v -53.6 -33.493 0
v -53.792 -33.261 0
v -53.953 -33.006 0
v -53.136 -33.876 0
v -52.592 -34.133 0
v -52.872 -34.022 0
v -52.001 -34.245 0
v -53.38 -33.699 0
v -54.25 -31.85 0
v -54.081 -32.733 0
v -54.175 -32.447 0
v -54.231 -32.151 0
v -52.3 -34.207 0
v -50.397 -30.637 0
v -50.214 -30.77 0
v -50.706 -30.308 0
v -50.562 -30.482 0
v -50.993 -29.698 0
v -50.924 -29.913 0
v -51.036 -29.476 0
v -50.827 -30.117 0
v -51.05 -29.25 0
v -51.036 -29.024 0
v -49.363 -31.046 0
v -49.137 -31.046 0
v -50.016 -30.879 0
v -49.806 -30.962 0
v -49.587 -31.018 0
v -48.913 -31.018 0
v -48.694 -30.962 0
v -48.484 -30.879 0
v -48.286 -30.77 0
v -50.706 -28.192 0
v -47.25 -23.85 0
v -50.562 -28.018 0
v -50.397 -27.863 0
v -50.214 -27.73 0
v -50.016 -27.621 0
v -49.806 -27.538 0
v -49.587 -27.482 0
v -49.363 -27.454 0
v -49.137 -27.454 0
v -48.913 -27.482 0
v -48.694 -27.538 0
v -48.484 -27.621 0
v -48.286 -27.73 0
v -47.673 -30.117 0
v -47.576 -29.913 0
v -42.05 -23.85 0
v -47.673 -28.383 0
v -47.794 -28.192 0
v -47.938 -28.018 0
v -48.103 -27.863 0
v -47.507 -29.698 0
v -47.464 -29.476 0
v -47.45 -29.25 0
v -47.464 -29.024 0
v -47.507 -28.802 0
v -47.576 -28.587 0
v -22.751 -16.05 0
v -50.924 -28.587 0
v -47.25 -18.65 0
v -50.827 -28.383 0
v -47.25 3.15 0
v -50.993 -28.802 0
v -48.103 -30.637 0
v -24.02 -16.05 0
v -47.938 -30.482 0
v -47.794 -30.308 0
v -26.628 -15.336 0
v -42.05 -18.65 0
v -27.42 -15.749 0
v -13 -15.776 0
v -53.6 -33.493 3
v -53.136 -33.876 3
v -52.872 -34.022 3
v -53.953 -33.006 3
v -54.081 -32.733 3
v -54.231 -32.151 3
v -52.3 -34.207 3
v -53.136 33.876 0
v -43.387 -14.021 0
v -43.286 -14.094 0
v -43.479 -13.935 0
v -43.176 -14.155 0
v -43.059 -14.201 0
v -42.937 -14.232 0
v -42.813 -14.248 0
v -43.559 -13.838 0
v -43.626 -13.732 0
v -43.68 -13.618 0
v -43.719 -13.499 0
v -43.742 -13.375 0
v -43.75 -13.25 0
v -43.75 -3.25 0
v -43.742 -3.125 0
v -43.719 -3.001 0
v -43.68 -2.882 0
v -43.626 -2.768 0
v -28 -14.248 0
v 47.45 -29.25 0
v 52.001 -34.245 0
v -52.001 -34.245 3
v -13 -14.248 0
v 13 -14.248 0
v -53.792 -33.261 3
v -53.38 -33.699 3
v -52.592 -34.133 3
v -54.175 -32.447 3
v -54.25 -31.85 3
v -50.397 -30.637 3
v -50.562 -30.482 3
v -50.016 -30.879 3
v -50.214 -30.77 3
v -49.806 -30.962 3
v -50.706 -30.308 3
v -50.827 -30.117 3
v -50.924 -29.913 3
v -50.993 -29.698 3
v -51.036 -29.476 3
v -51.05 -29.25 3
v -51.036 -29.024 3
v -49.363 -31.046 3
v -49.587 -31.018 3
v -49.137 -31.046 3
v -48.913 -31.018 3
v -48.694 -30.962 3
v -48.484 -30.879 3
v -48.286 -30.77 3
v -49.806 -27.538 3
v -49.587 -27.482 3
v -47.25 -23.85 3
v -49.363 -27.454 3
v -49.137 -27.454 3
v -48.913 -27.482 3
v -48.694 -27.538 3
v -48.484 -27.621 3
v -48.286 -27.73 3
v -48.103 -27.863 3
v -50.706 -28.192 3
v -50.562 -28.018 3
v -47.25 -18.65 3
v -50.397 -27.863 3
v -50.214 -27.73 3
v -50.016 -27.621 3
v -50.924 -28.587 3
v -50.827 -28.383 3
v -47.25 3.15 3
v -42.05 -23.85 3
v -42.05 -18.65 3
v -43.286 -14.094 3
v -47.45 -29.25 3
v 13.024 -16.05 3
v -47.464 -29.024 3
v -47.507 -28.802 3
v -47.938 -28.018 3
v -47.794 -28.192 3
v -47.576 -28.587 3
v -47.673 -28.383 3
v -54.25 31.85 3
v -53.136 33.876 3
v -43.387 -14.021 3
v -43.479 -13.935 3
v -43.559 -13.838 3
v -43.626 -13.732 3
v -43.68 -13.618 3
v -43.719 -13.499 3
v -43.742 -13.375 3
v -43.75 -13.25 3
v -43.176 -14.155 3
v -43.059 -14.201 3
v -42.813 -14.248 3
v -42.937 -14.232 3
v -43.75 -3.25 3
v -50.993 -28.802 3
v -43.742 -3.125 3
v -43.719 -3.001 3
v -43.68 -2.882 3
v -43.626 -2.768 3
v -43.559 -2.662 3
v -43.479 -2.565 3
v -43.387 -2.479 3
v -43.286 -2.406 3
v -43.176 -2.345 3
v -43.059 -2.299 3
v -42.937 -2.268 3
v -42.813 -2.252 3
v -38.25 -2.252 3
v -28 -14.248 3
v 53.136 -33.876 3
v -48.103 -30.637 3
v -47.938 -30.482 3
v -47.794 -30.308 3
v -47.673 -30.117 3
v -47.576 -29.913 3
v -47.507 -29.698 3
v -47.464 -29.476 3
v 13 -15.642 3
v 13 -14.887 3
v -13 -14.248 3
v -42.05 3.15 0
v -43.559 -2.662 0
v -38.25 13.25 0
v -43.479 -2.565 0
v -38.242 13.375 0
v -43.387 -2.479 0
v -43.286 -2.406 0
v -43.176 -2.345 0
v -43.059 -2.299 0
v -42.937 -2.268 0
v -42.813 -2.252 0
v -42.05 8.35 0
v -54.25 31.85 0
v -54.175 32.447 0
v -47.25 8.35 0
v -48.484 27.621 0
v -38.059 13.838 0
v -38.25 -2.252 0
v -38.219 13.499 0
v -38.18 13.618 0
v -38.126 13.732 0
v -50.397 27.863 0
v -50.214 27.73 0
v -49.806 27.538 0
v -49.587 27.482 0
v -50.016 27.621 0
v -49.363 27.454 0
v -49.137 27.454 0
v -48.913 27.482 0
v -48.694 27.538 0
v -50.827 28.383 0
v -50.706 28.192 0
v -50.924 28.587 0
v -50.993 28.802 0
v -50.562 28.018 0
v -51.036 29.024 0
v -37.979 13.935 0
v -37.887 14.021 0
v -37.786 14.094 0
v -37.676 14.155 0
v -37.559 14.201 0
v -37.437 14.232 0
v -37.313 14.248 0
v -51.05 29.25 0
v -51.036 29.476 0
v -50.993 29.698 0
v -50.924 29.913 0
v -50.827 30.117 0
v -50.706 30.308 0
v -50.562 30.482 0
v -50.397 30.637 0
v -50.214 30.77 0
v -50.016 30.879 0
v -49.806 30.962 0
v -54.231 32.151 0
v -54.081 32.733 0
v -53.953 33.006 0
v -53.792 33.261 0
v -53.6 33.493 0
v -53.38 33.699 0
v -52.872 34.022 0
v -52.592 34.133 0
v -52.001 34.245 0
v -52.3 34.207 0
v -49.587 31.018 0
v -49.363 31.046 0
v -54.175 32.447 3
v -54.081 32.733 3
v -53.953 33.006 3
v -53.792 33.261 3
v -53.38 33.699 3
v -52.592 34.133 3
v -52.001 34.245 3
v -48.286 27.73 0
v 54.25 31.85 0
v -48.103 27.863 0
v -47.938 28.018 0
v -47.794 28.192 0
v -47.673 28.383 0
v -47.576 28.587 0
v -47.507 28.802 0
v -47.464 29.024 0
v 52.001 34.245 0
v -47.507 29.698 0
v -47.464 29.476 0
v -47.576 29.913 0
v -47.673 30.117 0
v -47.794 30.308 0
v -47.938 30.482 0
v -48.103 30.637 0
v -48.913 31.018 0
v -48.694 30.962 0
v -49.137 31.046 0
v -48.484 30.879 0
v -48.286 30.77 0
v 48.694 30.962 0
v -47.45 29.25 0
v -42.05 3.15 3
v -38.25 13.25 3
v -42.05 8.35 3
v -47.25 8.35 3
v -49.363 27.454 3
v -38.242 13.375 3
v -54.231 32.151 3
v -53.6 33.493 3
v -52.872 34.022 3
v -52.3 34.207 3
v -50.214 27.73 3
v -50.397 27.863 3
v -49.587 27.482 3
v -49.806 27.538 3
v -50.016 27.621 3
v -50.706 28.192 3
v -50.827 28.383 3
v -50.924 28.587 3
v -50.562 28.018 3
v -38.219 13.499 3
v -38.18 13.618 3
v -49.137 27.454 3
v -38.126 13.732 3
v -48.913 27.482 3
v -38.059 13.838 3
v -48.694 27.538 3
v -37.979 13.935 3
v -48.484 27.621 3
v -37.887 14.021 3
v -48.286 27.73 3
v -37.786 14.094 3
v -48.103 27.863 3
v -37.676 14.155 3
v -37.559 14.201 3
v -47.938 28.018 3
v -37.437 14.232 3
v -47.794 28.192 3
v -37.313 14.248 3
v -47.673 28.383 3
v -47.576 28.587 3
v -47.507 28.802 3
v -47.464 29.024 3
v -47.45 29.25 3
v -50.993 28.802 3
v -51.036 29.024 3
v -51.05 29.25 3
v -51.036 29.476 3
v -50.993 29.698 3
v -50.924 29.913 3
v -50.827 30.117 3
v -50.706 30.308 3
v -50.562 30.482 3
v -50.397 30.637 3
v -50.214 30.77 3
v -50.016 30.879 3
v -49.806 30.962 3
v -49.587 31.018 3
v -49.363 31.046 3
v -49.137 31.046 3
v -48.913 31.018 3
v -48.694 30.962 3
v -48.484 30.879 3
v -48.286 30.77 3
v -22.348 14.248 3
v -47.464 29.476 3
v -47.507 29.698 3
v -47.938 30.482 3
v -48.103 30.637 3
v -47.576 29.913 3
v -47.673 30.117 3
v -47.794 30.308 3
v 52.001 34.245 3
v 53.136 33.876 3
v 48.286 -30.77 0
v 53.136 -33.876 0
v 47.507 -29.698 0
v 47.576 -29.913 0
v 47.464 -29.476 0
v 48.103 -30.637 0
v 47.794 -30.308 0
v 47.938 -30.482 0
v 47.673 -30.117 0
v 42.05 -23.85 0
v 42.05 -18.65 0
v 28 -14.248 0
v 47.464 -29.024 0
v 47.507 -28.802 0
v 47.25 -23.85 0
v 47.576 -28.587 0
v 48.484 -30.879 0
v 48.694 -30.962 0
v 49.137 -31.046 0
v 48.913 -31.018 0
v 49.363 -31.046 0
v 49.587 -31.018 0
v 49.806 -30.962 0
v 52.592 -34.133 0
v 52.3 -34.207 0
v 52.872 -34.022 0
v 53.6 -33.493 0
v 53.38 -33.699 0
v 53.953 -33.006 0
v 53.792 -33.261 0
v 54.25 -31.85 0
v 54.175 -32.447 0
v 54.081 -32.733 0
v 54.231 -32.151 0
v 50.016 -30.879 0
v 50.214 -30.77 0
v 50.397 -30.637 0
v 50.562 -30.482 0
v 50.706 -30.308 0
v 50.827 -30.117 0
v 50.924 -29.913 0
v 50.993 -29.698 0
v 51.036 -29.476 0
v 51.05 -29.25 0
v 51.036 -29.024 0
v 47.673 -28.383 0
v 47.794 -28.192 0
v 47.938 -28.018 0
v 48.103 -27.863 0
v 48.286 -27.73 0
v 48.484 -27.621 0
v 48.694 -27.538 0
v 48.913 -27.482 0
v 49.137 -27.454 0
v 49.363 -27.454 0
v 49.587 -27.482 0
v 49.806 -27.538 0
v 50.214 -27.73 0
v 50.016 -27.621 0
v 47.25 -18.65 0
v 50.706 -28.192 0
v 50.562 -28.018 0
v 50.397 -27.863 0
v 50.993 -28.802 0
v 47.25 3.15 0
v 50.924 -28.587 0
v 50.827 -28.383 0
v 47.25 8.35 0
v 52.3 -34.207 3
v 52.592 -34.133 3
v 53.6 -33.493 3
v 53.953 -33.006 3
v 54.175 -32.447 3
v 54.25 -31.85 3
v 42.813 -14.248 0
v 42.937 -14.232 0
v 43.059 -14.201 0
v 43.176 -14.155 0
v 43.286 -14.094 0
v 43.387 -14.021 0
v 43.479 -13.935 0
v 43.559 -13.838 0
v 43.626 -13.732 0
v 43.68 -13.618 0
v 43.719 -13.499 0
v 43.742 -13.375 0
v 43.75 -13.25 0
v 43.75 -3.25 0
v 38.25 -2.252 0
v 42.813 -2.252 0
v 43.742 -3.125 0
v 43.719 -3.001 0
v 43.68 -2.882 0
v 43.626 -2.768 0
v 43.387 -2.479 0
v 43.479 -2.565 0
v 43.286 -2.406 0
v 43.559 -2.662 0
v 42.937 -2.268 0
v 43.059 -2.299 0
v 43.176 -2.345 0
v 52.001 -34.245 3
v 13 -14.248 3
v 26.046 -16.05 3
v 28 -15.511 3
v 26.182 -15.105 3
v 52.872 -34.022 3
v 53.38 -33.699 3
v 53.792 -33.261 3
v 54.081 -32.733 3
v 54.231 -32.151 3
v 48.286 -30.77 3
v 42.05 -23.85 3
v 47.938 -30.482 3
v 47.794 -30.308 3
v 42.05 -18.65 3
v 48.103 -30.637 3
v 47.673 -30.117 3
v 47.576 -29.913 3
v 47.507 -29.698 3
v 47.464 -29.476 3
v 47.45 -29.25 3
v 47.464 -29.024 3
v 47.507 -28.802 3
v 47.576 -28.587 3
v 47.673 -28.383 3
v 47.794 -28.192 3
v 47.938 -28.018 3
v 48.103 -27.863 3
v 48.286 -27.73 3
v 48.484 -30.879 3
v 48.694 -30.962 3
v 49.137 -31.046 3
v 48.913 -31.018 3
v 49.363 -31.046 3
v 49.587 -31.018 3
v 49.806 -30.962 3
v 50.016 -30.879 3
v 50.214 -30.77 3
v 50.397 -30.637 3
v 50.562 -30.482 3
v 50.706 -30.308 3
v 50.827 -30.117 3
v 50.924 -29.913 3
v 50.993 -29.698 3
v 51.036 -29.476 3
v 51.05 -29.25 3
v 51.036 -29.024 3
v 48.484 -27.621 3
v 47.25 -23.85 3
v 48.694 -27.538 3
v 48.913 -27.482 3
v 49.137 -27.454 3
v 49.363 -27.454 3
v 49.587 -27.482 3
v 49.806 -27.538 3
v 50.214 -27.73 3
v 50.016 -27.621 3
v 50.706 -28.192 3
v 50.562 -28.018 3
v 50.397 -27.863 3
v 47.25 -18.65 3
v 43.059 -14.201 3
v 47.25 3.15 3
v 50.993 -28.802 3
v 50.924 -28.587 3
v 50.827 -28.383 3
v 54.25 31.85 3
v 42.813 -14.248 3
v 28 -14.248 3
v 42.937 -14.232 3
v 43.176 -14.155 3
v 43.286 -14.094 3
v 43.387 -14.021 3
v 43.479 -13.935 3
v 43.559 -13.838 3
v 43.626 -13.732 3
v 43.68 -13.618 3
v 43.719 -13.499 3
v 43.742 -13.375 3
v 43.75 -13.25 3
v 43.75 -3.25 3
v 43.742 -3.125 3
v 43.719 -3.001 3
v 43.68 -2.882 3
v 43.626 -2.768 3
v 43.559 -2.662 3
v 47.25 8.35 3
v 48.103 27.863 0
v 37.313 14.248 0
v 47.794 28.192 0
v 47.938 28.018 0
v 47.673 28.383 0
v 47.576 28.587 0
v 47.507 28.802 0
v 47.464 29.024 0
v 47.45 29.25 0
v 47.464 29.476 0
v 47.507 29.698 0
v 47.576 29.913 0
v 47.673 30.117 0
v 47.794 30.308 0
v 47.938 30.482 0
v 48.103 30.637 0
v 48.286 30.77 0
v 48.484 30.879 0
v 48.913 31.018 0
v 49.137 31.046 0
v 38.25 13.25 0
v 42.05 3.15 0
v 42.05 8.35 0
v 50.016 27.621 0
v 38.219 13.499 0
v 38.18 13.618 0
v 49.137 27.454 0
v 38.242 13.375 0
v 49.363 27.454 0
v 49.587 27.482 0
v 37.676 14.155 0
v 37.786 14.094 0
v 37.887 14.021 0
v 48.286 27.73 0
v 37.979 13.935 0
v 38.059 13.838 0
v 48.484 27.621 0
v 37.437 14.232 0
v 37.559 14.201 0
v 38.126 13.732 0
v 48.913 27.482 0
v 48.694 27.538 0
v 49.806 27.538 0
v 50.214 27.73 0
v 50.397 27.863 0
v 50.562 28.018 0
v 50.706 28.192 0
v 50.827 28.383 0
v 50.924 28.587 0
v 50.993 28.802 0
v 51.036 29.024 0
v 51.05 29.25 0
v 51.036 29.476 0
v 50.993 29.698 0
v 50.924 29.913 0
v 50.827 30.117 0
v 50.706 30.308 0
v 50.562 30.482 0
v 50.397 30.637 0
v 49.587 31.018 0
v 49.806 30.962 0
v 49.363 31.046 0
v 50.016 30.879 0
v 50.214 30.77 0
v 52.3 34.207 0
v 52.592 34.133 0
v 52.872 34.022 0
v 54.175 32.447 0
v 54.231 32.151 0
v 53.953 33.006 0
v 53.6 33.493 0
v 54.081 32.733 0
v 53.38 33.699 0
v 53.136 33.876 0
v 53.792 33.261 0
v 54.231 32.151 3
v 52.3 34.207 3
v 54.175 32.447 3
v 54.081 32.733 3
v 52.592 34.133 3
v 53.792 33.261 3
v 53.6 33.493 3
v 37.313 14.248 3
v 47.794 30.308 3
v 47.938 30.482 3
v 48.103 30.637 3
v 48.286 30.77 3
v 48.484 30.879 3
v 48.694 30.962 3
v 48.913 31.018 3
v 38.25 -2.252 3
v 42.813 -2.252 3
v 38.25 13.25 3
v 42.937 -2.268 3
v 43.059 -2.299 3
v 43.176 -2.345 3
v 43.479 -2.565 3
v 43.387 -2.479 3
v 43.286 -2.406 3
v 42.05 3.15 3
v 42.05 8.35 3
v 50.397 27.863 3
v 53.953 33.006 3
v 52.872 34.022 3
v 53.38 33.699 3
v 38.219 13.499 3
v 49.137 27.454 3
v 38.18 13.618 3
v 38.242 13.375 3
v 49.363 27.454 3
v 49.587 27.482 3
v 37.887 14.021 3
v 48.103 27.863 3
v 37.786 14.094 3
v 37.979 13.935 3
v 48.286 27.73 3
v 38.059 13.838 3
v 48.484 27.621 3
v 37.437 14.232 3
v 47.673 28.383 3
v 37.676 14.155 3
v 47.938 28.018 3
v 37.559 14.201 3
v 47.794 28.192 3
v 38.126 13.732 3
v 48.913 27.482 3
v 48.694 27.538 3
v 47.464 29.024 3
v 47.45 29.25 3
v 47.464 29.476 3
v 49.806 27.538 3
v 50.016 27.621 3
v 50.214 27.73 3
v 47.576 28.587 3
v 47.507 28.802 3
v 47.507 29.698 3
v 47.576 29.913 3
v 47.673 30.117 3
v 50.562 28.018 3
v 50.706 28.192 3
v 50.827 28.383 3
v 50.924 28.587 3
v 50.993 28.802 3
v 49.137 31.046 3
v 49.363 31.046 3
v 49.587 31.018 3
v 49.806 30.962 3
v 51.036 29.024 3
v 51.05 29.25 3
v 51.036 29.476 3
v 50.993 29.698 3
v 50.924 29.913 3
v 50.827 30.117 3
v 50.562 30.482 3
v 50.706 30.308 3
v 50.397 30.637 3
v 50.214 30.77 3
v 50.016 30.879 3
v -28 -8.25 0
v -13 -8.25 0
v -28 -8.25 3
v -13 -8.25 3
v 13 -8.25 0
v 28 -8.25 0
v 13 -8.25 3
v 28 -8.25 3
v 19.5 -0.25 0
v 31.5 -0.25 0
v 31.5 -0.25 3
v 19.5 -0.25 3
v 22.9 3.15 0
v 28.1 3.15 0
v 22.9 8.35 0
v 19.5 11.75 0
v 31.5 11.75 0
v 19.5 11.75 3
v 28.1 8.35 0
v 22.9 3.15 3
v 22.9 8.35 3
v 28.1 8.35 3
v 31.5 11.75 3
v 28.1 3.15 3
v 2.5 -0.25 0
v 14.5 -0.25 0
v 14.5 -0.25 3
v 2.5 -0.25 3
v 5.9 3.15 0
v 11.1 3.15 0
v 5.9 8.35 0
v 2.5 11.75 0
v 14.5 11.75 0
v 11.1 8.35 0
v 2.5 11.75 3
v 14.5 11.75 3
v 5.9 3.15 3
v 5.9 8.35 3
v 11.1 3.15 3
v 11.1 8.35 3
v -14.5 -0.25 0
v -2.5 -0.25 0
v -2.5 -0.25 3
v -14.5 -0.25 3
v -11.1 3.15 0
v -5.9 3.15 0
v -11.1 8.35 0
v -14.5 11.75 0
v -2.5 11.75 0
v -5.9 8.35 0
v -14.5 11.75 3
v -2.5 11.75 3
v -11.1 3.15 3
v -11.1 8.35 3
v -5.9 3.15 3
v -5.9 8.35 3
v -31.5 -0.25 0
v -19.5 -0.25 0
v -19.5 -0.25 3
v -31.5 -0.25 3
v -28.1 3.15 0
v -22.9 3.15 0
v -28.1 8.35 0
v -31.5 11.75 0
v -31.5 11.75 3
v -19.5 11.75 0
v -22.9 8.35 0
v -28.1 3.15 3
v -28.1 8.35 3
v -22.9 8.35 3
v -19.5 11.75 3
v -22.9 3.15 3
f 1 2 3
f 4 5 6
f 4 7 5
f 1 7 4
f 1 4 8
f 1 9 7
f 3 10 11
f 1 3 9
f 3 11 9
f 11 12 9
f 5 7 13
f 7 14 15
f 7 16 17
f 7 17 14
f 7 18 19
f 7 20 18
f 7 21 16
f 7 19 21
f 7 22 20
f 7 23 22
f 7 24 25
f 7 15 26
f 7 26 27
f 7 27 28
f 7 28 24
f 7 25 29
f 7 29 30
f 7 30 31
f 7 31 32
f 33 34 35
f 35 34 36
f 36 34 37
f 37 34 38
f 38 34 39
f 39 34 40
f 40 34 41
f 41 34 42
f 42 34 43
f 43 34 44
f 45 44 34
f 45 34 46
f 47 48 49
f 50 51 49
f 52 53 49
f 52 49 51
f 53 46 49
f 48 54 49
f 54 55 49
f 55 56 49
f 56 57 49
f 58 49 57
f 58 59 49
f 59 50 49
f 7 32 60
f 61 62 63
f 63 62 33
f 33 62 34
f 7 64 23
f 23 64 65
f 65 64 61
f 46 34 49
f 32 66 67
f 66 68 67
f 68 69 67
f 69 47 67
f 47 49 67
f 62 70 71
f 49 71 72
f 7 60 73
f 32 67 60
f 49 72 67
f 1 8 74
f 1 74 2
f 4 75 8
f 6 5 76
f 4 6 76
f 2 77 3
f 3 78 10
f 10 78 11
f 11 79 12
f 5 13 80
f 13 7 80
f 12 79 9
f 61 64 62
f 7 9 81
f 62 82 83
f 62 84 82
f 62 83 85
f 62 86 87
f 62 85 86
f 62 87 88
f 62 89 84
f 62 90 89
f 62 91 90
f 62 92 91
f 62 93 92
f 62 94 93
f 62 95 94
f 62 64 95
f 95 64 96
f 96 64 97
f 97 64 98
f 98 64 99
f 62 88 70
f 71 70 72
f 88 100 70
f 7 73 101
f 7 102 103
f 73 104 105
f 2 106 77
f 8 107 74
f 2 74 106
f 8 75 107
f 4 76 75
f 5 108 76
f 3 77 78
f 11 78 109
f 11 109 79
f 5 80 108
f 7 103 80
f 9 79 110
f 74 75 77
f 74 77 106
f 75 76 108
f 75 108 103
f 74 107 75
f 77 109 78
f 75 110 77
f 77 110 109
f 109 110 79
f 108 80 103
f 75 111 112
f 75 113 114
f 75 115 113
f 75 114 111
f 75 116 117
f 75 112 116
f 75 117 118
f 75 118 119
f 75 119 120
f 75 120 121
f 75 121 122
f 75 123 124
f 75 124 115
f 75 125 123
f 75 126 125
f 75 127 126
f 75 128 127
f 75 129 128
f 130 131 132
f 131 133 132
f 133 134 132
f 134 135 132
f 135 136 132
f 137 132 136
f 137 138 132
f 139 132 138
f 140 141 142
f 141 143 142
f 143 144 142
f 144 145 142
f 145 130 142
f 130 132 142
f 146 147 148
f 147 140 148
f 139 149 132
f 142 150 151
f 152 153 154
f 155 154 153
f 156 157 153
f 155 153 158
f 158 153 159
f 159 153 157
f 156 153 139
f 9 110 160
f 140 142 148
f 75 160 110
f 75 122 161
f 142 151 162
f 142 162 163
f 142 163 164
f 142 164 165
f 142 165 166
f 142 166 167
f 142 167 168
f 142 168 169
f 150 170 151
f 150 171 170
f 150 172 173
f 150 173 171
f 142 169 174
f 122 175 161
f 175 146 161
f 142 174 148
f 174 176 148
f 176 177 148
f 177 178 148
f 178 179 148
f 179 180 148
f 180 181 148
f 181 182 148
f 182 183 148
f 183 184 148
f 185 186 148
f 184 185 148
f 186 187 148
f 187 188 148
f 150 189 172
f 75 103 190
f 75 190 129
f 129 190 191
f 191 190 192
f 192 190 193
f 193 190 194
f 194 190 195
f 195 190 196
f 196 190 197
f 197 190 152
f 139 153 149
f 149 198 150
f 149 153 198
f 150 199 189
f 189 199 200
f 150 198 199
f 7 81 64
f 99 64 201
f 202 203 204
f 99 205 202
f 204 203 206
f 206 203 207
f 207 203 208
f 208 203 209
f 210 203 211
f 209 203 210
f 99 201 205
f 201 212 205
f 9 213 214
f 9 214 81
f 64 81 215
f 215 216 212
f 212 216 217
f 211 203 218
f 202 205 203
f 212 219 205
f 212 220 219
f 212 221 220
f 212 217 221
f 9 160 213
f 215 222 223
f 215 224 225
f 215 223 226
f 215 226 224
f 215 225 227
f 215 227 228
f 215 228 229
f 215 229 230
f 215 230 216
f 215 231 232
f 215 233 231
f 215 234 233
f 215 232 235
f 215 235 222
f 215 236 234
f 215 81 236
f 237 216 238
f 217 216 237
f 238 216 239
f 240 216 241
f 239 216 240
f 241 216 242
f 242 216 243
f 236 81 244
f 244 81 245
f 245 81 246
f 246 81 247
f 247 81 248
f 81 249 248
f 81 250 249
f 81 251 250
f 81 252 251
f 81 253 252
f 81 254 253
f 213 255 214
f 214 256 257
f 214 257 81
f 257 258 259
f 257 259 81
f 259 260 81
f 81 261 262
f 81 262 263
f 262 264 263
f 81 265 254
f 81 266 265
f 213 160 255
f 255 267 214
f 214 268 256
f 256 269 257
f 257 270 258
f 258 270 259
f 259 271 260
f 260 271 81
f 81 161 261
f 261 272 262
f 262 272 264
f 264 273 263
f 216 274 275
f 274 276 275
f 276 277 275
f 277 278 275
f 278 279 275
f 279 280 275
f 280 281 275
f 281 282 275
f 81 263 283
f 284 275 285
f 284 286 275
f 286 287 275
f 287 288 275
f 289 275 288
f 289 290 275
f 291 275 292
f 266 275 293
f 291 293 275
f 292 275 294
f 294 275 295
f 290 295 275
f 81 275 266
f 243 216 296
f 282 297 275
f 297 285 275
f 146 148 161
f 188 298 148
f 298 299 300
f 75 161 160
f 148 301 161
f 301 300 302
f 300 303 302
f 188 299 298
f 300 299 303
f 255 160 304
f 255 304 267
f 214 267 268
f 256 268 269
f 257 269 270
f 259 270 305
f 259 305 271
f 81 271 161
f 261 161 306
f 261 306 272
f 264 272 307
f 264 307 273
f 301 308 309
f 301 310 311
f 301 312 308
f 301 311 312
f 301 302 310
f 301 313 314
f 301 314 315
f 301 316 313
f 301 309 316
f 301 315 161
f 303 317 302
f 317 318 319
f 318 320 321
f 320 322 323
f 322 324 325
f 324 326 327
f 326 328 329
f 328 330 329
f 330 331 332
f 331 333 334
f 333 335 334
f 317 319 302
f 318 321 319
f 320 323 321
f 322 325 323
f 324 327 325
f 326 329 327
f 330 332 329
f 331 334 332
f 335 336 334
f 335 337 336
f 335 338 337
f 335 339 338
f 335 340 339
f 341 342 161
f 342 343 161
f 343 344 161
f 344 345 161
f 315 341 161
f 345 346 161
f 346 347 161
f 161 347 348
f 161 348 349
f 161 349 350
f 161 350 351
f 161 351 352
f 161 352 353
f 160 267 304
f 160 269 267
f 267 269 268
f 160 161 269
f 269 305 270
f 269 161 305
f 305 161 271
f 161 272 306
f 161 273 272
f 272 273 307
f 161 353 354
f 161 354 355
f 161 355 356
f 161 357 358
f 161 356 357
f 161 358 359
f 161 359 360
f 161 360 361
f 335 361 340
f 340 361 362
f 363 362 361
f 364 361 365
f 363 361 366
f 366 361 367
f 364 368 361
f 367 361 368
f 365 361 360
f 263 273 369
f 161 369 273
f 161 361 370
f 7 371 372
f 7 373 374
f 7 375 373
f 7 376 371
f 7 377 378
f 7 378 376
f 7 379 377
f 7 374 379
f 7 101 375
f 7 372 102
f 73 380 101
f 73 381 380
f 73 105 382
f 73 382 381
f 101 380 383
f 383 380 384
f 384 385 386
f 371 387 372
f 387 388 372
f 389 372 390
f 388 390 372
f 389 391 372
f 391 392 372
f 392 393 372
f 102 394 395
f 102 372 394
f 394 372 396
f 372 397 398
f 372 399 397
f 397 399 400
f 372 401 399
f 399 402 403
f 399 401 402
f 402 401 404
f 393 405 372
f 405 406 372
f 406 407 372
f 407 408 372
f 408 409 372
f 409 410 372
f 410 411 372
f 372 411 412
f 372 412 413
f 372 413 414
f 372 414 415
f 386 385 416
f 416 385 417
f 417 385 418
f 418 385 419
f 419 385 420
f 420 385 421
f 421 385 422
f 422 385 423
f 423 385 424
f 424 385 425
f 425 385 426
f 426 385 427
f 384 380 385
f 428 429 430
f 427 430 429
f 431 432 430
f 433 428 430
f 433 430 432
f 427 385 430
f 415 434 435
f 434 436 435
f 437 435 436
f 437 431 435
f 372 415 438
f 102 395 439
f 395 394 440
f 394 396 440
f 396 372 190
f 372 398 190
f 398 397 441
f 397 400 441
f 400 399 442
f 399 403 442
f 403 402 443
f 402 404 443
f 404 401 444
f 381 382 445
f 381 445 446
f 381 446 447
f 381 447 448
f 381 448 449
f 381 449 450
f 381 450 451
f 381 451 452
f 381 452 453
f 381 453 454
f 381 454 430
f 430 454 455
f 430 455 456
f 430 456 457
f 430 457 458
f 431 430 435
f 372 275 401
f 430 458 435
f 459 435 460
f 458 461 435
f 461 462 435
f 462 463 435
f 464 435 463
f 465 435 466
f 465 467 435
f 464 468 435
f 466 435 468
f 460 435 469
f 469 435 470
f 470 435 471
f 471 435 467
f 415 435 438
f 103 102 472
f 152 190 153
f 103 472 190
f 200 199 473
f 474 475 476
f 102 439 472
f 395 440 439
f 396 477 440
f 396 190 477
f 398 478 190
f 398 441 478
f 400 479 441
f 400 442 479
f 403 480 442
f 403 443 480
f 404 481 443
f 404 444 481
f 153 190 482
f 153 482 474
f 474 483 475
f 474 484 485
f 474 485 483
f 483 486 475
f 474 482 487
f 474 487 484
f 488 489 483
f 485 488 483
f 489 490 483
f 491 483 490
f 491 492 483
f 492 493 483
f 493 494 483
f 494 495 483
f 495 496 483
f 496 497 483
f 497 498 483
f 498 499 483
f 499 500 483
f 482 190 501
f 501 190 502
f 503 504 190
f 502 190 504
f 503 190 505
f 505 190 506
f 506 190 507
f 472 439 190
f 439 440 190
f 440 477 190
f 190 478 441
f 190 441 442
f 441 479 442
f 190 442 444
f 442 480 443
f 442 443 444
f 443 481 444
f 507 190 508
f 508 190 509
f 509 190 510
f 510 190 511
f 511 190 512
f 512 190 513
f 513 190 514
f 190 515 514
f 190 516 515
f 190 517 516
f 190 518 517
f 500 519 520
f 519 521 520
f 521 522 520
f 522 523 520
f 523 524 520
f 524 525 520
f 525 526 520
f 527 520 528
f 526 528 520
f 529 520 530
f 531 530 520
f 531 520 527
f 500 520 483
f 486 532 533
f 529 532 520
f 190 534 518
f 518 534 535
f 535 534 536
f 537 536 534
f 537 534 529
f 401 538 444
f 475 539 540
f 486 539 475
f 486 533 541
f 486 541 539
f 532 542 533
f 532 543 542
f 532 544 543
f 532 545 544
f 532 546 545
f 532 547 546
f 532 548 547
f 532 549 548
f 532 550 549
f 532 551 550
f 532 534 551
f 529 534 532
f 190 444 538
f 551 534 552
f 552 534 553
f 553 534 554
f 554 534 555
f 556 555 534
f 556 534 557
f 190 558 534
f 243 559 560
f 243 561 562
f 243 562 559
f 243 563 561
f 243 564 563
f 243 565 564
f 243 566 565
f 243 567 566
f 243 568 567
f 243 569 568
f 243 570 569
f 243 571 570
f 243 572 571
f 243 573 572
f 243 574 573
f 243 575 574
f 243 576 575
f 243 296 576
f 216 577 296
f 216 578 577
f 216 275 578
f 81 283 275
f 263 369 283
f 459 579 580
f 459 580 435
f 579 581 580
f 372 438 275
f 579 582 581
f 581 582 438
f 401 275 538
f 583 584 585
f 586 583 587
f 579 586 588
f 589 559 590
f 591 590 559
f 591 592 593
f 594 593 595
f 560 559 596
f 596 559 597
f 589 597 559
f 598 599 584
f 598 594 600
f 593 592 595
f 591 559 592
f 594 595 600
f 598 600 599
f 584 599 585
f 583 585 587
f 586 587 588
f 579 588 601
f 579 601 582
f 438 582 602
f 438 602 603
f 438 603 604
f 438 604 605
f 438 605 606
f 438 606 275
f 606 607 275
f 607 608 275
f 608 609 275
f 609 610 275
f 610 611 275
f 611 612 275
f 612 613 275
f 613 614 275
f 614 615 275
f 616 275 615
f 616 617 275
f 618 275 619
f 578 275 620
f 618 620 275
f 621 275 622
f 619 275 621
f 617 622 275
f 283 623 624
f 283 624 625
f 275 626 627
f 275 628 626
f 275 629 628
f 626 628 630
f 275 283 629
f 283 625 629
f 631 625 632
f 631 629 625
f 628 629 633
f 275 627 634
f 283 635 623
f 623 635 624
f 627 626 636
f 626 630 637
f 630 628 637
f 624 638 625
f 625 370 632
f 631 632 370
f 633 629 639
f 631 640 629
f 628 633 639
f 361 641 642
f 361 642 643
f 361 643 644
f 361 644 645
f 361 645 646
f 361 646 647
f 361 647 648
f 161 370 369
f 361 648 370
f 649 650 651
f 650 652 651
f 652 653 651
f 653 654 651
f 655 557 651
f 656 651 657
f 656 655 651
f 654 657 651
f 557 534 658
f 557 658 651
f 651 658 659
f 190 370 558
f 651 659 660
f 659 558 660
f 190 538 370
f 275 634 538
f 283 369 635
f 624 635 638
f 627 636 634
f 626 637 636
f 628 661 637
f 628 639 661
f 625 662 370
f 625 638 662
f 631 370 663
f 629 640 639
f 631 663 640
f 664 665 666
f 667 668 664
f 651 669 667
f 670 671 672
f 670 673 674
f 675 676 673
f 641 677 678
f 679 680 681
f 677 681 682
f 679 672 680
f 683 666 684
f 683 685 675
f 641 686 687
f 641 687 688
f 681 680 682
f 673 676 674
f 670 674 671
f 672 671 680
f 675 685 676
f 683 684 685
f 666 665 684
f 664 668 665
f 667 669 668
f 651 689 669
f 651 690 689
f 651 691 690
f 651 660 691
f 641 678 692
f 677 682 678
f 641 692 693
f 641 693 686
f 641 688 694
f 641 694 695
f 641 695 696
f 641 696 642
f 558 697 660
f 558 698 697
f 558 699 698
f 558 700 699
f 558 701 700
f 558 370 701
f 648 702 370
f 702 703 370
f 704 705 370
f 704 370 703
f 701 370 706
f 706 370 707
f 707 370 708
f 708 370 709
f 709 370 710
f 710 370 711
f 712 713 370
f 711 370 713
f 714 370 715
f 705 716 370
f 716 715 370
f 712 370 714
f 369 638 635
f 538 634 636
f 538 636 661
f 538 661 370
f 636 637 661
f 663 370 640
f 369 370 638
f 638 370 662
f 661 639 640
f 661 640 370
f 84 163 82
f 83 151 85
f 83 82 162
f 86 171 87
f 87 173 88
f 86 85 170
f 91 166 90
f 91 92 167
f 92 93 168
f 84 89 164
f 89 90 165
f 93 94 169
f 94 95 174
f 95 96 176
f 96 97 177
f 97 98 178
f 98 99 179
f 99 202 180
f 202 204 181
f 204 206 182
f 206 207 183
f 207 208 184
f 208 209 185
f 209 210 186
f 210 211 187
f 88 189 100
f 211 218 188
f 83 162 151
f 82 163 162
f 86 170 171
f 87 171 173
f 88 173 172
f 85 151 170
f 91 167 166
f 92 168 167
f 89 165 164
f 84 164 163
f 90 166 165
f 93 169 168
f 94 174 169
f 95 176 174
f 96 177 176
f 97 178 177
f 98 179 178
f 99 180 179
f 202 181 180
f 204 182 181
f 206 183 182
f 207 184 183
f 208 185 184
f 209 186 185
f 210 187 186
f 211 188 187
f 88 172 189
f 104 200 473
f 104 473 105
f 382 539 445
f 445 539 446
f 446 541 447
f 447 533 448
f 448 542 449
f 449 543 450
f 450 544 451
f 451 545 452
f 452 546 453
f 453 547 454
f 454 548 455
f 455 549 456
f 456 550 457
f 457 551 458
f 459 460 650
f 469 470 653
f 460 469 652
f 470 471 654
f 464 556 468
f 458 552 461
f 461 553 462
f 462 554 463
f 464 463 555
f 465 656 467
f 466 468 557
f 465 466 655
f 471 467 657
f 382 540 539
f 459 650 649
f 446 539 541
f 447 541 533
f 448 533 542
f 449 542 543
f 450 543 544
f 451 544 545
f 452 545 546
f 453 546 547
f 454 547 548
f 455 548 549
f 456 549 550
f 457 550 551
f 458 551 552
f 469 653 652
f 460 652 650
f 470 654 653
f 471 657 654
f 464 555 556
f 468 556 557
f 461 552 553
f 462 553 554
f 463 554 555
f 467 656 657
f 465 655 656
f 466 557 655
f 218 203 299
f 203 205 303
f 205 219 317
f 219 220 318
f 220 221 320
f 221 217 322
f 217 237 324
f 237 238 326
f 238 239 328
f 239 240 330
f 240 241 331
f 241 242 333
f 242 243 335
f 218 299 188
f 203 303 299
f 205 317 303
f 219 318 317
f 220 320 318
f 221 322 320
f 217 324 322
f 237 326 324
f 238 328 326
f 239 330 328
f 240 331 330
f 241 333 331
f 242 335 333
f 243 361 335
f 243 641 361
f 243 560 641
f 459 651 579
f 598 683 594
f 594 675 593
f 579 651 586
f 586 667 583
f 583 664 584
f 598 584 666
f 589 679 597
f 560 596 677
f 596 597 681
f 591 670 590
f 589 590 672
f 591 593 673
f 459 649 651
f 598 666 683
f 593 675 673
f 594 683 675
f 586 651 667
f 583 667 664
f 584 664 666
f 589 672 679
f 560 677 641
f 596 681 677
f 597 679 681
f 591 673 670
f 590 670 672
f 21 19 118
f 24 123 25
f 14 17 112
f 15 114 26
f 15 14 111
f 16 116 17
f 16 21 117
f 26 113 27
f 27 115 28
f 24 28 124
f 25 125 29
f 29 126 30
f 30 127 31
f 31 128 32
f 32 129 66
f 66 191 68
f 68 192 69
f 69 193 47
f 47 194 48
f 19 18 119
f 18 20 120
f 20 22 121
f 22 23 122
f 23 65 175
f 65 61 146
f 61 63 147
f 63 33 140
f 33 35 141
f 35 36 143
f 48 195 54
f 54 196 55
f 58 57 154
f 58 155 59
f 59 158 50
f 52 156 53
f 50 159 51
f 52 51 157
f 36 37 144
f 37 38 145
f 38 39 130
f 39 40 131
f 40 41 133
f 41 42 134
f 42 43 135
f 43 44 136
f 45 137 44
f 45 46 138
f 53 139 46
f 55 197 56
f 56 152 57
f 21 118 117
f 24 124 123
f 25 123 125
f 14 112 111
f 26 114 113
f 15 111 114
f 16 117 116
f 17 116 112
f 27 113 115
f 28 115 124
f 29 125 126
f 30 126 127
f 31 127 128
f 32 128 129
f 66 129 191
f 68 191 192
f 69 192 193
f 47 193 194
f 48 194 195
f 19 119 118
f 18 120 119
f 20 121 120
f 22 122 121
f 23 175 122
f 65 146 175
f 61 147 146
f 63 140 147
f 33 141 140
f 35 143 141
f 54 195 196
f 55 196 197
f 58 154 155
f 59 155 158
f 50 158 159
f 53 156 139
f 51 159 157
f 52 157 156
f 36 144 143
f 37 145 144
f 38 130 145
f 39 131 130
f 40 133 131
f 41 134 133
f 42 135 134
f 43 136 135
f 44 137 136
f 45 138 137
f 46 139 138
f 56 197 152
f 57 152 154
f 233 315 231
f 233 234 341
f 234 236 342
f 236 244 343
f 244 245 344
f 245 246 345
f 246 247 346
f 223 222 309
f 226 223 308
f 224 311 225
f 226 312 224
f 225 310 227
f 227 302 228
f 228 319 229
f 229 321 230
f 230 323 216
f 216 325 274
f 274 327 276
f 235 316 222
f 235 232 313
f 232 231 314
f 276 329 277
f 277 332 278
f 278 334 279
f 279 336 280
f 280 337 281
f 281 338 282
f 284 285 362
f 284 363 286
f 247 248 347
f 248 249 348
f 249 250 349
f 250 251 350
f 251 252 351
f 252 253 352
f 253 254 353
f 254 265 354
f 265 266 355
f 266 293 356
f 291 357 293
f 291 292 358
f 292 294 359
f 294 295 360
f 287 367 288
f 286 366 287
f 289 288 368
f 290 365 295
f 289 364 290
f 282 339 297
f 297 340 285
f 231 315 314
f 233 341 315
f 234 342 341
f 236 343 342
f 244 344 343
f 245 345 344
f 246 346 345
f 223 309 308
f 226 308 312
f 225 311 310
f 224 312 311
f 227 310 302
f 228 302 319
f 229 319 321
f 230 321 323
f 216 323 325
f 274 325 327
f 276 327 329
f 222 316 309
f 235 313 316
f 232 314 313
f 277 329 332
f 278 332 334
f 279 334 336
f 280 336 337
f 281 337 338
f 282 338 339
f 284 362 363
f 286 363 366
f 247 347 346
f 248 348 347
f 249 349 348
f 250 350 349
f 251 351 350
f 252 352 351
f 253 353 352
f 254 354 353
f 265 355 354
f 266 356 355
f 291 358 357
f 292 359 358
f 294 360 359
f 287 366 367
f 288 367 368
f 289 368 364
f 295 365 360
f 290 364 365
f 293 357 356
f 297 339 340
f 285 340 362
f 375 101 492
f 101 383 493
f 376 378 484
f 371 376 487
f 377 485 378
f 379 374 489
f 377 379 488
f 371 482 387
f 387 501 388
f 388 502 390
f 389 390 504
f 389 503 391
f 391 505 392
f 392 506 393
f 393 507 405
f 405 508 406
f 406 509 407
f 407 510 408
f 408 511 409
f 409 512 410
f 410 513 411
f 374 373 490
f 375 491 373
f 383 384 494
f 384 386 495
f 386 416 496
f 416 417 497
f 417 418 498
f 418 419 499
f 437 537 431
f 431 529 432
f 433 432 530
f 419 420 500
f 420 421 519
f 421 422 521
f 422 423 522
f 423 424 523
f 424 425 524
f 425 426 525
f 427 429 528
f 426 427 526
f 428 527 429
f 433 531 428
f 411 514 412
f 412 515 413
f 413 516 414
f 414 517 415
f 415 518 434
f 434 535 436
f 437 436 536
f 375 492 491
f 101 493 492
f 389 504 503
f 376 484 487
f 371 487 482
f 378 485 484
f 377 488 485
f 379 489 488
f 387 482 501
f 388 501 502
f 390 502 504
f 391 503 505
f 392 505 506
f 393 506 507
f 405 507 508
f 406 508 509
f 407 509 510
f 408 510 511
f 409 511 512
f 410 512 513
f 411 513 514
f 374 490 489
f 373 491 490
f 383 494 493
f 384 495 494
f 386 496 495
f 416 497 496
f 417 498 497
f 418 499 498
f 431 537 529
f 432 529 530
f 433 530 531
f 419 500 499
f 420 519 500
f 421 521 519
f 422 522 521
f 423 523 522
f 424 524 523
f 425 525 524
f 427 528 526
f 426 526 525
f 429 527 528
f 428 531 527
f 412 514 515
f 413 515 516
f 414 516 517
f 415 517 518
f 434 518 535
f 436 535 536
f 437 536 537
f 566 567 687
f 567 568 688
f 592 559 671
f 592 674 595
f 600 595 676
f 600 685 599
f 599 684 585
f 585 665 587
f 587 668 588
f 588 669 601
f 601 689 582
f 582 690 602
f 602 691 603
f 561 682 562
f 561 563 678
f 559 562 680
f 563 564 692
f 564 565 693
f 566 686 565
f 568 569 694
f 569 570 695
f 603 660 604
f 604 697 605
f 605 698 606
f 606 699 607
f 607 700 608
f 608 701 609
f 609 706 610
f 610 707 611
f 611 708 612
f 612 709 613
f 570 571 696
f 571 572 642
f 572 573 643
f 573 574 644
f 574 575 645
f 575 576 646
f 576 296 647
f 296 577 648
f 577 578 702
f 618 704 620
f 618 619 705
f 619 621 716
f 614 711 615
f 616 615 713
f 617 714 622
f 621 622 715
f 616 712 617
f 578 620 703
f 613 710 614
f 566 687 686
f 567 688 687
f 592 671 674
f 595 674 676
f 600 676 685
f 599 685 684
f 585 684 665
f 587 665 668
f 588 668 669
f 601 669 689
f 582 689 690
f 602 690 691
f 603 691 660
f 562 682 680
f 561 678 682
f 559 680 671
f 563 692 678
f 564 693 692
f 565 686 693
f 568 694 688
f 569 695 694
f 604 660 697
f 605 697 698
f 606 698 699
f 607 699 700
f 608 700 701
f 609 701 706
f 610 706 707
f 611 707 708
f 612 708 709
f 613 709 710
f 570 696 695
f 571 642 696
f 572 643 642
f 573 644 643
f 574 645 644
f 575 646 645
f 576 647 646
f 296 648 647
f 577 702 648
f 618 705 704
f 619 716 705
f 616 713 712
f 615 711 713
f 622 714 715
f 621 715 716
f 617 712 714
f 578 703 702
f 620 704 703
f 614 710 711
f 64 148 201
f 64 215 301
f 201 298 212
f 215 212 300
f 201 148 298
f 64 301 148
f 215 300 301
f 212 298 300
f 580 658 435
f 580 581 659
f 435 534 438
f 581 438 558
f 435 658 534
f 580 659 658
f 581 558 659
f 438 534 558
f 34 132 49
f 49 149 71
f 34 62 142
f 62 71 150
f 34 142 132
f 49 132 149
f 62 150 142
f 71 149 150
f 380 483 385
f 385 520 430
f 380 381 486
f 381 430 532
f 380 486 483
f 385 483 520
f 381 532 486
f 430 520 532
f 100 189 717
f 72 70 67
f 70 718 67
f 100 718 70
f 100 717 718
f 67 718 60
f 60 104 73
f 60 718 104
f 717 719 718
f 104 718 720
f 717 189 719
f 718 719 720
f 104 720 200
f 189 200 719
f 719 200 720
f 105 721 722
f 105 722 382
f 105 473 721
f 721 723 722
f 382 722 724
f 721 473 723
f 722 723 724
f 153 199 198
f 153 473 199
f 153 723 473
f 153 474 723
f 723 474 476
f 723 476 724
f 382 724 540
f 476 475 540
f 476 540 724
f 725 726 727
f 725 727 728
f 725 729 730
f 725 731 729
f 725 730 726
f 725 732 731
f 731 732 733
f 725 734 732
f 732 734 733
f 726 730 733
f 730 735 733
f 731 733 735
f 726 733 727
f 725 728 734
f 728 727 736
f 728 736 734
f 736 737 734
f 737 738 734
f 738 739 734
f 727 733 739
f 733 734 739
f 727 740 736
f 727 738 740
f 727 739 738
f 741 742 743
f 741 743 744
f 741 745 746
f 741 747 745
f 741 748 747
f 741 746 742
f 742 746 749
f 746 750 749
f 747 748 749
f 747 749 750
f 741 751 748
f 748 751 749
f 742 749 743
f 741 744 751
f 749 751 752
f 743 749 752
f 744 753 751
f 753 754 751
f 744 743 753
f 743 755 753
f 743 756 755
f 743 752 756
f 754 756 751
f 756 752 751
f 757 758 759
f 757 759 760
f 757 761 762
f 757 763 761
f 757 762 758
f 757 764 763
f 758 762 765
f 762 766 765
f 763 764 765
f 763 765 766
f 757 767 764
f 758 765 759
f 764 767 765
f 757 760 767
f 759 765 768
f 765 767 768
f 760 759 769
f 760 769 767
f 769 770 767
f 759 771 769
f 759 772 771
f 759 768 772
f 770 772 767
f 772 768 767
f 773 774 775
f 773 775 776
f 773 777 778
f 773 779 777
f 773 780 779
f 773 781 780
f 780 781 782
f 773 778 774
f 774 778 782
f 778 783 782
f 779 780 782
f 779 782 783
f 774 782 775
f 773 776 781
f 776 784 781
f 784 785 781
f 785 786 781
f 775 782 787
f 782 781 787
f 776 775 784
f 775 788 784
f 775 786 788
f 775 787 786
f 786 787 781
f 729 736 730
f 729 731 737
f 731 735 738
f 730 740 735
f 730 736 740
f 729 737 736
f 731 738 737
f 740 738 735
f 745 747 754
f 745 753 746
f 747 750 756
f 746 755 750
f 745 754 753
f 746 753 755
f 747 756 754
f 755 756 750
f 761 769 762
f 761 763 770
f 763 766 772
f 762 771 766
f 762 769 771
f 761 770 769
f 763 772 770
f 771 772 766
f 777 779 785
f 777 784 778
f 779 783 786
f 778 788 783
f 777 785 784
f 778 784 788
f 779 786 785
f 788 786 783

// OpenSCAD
$fn = 50;

difference() {
	union() {
		translate(v = [0, 0, 0]) {
			rotate(a = [0, 0, 0]) {
				difference() {
					union() {
						translate(v = [0, 0, 0]) {
							rotate(a = [0, 0, 0]) {
								difference() {
									union() {
										hull() {
											translate(v = [-51.85, 31.85, 0]) {
												cylinder(h = 3.0, r = 2.4);
											}
											translate(v = [51.85, 31.85, 0]) {
												cylinder(h = 3.0, r = 2.4);
											}
											translate(v = [-51.85, -31.85, 0]) {
												cylinder(h = 3.0, r = 2.4);
											}
											translate(v = [51.85, -31.85, 0]) {
												cylinder(h = 3.0, r = 2.4);
											}
										}
									}
									union() {
										translate(v = [0.0, -8.25, -0.1]) {
											hull() {
												translate(v = [-42.75, 5.0, 0]) {
													cylinder(h = 18.2, r = 1.0);
												}
												translate(v = [42.75, 5.0, 0]) {
													cylinder(h = 18.2, r = 1.0);
												}
												translate(v = [-42.75, -5.0, 0]) {
													cylinder(h = 18.2, r = 1.0);
												}
												translate(v = [42.75, -5.0, 0]) {
													cylinder(h = 18.2, r = 1.0);
												}
											}
										}
										translate(v = [0.0, 0.0, -0.1]) {
											hull() {
												translate(v = [-37.25, 13.25, 0]) {
													cylinder(h = 18.2, r = 1.0);
												}
												translate(v = [37.25, 13.25, 0]) {
													cylinder(h = 18.2, r = 1.0);
												}
												translate(v = [-37.25, -13.25, 0]) {
													cylinder(h = 18.2, r = 1.0);
												}
												translate(v = [37.25, -13.25, 0]) {
													cylinder(h = 18.2, r = 1.0);
												}
											}
										}
										translate(v = [-49.25, -29.25, -0.1]) {
											cylinder(h = 6.2, r = 1.8);
										}
										translate(v = [-49.25, 29.25, -0.1]) {
											cylinder(h = 6.2, r = 1.8);
										}
										translate(v = [49.25, -29.25, -0.1]) {
											cylinder(h = 6.2, r = 1.8);
										}
										translate(v = [49.25, 29.25, -0.1]) {
											cylinder(h = 6.2, r = 1.8);
										}
										translate(v = [-47.25, 3.15, -0.1]) {
											cube(size = [5.2, 5.2, 6.2]);
										}
										translate(v = [42.05, 3.15, -0.1]) {
											cube(size = [5.2, 5.2, 6.2]);
										}
										translate(v = [-47.25, -23.85, -0.1]) {
											cube(size = [5.2, 5.2, 6.2]);
										}
										translate(v = [42.05, -23.85, -0.1]) {
											cube(size = [5.2, 5.2, 6.2]);
										}
									}
								}
							}
						}
						translate(v = [0, 0, 0]) {
							rotate(a = [0, 0, 0]) {
								difference() {
									union() {
										translate(v = [-28.0, -16.05, 0]) {
											cube(size = [15.0, 7.8, 3.0]);
										}
									}
									union();
								}
							}
						}
						translate(v = [0, 0, 0]) {
							rotate(a = [0, 0, 0]) {
								difference() {
									union() {
										translate(v = [13.0, -16.05, 0]) {
											cube(size = [15.0, 7.8, 3.0]);
										}
									}
									union();
								}
							}
						}
					}
					union();
				}
			}
		}
		translate(v = [-25.5, 5.75, 0]) {
			rotate(a = [0, 0, 0]) {
				difference() {
					union() {
						translate(v = [-6.0, -6.0, 0]) {
							cube(size = [12.0, 12.0, 3.0]);
						}
					}
					union() {
						translate(v = [-2.6, -2.6, -0.1]) {
							cube(size = [5.2, 5.2, 3.2]);
						}
					}
				}
			}
		}
		translate(v = [-8.5, 5.75, 0]) {
			rotate(a = [0, 0, 0]) {
				difference() {
					union() {
						translate(v = [-6.0, -6.0, 0]) {
							cube(size = [12.0, 12.0, 3.0]);
						}
					}
					union() {
						translate(v = [-2.6, -2.6, -0.1]) {
							cube(size = [5.2, 5.2, 3.2]);
						}
					}
				}
			}
		}
		translate(v = [8.5, 5.75, 0]) {
			rotate(a = [0, 0, 0]) {
				difference() {
					union() {
						translate(v = [-6.0, -6.0, 0]) {
							cube(size = [12.0, 12.0, 3.0]);
						}
					}
					union() {
						translate(v = [-2.6, -2.6, -0.1]) {
							cube(size = [5.2, 5.2, 3.2]);
						}
					}
				}
			}
		}
		translate(v = [25.5, 5.75, 0]) {
			rotate(a = [0, 0, 0]) {
				difference() {
					union() {
						translate(v = [-6.0, -6.0, 0]) {
							cube(size = [12.0, 12.0, 3.0]);
						}
					}
					union() {
						translate(v = [-2.6, -2.6, -0.1]) {
							cube(size = [5.2, 5.2, 3.2]);
						}
					}
				}
			}
		}
	}
	union();
}
